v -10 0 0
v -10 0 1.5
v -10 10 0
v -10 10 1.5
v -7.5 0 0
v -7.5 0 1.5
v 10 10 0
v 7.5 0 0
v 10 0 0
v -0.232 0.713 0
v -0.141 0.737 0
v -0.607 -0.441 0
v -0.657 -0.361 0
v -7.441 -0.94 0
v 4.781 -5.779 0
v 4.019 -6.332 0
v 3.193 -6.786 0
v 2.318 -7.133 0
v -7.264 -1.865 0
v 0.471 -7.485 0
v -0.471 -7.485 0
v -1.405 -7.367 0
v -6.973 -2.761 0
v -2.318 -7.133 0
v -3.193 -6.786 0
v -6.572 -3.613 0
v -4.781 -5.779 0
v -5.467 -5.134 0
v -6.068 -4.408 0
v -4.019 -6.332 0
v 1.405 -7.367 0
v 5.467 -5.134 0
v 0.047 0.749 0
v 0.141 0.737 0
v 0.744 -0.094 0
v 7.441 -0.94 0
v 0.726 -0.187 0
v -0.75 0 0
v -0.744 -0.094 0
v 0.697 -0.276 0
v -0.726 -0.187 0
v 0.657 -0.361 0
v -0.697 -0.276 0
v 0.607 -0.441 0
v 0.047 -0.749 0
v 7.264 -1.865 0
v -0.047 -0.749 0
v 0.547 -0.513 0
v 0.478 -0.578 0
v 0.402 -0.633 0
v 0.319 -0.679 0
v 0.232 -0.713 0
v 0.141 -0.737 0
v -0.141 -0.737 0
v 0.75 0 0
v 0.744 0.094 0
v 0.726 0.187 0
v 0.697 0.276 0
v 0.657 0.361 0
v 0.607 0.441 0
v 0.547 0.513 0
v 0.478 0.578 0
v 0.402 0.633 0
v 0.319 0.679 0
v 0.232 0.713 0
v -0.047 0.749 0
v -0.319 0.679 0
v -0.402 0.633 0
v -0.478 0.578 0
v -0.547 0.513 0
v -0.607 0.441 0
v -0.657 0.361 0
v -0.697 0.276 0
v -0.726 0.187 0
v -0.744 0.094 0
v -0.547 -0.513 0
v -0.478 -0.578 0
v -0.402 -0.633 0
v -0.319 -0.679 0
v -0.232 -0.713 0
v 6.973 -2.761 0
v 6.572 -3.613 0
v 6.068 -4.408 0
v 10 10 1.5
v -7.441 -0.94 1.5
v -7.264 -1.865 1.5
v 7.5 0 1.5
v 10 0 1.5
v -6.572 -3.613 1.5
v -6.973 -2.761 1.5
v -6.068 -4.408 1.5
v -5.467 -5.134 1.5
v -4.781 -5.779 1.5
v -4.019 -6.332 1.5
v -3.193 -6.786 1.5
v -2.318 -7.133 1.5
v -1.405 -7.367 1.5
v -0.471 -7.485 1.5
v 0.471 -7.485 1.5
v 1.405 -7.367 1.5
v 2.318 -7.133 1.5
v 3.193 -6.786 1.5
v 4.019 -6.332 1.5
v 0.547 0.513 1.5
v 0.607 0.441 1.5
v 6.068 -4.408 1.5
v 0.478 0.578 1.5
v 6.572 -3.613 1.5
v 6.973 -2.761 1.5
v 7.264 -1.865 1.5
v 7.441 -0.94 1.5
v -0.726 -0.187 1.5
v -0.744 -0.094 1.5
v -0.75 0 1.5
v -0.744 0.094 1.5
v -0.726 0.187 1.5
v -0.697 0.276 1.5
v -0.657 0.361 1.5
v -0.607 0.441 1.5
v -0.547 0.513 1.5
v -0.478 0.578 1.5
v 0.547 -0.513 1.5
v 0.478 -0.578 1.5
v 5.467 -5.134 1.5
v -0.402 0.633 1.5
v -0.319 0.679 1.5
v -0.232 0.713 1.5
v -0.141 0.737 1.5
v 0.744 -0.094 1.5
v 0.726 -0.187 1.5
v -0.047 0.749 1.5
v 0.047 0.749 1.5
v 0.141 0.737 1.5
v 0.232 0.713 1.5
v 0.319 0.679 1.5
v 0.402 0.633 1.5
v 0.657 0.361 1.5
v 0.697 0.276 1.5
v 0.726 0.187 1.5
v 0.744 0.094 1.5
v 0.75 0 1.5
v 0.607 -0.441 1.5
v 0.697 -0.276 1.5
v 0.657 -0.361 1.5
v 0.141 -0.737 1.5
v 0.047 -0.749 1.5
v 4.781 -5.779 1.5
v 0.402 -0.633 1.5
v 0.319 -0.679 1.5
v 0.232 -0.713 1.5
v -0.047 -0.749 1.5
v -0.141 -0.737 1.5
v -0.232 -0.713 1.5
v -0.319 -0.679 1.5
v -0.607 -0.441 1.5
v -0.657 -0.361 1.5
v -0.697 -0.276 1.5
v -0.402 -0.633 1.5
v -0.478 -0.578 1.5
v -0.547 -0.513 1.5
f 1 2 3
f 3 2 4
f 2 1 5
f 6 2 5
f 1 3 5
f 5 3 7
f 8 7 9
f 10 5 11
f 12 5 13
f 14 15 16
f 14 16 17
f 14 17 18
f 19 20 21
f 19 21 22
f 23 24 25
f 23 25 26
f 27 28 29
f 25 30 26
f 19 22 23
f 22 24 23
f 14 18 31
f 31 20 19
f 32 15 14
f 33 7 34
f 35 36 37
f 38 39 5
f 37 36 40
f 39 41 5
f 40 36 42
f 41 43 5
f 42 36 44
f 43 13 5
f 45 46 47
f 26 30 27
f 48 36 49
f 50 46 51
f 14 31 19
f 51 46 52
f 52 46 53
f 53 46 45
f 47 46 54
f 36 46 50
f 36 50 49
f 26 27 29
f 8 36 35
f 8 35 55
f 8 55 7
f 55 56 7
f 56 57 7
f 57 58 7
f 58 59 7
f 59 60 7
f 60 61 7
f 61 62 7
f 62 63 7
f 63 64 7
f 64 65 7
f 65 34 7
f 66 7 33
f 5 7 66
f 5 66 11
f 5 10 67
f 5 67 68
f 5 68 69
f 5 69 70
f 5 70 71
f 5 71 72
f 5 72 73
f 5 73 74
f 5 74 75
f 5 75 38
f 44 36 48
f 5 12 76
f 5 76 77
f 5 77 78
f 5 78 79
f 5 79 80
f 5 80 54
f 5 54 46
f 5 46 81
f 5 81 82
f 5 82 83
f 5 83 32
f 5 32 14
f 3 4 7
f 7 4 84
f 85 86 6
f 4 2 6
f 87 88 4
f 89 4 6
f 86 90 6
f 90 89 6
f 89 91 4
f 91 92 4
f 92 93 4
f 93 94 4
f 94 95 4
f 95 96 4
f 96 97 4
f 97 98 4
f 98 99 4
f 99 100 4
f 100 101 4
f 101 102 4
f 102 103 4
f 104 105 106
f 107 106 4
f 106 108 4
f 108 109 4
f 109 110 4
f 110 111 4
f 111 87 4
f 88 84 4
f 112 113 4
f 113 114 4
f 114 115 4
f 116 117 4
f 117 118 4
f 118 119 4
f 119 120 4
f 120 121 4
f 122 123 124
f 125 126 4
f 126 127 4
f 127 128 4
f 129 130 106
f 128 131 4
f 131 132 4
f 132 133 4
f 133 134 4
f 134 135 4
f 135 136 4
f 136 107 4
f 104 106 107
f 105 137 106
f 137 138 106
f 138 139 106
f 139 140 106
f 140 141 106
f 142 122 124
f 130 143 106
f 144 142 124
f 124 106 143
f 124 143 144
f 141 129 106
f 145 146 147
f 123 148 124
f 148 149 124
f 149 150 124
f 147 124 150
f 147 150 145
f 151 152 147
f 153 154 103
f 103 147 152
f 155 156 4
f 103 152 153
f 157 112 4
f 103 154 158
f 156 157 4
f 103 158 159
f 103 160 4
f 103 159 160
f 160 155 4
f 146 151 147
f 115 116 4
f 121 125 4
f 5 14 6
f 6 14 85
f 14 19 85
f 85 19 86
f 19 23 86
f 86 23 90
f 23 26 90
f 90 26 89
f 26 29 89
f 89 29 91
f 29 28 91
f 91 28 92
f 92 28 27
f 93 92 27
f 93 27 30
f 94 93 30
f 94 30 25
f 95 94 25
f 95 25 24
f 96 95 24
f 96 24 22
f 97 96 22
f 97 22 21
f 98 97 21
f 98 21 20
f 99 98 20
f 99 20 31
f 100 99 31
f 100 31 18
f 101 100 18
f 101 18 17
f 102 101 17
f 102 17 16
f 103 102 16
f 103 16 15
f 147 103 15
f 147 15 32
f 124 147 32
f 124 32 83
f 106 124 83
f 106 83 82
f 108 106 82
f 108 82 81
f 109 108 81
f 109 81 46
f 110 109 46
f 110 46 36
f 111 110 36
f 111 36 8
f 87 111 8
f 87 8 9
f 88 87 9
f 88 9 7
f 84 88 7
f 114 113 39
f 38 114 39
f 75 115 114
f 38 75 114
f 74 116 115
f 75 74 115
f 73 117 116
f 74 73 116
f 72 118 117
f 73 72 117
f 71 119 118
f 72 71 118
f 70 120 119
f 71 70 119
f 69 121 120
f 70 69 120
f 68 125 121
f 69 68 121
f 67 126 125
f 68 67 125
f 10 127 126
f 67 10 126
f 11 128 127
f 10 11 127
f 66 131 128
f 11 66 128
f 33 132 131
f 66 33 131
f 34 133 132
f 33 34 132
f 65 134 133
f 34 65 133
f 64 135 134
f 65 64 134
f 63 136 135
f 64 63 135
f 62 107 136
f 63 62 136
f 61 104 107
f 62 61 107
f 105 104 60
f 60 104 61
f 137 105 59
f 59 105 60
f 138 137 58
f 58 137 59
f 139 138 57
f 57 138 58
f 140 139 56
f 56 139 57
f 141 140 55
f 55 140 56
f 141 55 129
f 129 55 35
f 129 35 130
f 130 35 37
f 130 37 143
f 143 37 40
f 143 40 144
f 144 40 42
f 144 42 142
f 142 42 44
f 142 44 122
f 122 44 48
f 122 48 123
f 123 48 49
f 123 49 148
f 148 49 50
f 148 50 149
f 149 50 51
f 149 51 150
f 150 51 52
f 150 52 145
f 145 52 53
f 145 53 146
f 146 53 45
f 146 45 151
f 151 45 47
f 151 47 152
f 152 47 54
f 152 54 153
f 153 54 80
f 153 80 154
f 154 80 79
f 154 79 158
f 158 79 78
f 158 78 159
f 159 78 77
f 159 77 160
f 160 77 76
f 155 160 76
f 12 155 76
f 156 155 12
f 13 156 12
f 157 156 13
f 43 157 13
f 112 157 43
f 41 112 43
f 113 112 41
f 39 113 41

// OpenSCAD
// Resolution
$fn=50;

// Sizes of parts
2_56_radius = 0.75;
flag_width = 20;
flag_height = 10;
disc_radius = 7.5;
part_thickness = 1.5;

difference(){
	union(){
		cylinder(part_thickness,disc_radius,disc_radius);
		translate([flag_width/-2,0,0]) cube([flag_width,flag_height,part_thickness]);
	}

	cylinder(part_thickness*2,2_56_radius,2_56_radius);
}
